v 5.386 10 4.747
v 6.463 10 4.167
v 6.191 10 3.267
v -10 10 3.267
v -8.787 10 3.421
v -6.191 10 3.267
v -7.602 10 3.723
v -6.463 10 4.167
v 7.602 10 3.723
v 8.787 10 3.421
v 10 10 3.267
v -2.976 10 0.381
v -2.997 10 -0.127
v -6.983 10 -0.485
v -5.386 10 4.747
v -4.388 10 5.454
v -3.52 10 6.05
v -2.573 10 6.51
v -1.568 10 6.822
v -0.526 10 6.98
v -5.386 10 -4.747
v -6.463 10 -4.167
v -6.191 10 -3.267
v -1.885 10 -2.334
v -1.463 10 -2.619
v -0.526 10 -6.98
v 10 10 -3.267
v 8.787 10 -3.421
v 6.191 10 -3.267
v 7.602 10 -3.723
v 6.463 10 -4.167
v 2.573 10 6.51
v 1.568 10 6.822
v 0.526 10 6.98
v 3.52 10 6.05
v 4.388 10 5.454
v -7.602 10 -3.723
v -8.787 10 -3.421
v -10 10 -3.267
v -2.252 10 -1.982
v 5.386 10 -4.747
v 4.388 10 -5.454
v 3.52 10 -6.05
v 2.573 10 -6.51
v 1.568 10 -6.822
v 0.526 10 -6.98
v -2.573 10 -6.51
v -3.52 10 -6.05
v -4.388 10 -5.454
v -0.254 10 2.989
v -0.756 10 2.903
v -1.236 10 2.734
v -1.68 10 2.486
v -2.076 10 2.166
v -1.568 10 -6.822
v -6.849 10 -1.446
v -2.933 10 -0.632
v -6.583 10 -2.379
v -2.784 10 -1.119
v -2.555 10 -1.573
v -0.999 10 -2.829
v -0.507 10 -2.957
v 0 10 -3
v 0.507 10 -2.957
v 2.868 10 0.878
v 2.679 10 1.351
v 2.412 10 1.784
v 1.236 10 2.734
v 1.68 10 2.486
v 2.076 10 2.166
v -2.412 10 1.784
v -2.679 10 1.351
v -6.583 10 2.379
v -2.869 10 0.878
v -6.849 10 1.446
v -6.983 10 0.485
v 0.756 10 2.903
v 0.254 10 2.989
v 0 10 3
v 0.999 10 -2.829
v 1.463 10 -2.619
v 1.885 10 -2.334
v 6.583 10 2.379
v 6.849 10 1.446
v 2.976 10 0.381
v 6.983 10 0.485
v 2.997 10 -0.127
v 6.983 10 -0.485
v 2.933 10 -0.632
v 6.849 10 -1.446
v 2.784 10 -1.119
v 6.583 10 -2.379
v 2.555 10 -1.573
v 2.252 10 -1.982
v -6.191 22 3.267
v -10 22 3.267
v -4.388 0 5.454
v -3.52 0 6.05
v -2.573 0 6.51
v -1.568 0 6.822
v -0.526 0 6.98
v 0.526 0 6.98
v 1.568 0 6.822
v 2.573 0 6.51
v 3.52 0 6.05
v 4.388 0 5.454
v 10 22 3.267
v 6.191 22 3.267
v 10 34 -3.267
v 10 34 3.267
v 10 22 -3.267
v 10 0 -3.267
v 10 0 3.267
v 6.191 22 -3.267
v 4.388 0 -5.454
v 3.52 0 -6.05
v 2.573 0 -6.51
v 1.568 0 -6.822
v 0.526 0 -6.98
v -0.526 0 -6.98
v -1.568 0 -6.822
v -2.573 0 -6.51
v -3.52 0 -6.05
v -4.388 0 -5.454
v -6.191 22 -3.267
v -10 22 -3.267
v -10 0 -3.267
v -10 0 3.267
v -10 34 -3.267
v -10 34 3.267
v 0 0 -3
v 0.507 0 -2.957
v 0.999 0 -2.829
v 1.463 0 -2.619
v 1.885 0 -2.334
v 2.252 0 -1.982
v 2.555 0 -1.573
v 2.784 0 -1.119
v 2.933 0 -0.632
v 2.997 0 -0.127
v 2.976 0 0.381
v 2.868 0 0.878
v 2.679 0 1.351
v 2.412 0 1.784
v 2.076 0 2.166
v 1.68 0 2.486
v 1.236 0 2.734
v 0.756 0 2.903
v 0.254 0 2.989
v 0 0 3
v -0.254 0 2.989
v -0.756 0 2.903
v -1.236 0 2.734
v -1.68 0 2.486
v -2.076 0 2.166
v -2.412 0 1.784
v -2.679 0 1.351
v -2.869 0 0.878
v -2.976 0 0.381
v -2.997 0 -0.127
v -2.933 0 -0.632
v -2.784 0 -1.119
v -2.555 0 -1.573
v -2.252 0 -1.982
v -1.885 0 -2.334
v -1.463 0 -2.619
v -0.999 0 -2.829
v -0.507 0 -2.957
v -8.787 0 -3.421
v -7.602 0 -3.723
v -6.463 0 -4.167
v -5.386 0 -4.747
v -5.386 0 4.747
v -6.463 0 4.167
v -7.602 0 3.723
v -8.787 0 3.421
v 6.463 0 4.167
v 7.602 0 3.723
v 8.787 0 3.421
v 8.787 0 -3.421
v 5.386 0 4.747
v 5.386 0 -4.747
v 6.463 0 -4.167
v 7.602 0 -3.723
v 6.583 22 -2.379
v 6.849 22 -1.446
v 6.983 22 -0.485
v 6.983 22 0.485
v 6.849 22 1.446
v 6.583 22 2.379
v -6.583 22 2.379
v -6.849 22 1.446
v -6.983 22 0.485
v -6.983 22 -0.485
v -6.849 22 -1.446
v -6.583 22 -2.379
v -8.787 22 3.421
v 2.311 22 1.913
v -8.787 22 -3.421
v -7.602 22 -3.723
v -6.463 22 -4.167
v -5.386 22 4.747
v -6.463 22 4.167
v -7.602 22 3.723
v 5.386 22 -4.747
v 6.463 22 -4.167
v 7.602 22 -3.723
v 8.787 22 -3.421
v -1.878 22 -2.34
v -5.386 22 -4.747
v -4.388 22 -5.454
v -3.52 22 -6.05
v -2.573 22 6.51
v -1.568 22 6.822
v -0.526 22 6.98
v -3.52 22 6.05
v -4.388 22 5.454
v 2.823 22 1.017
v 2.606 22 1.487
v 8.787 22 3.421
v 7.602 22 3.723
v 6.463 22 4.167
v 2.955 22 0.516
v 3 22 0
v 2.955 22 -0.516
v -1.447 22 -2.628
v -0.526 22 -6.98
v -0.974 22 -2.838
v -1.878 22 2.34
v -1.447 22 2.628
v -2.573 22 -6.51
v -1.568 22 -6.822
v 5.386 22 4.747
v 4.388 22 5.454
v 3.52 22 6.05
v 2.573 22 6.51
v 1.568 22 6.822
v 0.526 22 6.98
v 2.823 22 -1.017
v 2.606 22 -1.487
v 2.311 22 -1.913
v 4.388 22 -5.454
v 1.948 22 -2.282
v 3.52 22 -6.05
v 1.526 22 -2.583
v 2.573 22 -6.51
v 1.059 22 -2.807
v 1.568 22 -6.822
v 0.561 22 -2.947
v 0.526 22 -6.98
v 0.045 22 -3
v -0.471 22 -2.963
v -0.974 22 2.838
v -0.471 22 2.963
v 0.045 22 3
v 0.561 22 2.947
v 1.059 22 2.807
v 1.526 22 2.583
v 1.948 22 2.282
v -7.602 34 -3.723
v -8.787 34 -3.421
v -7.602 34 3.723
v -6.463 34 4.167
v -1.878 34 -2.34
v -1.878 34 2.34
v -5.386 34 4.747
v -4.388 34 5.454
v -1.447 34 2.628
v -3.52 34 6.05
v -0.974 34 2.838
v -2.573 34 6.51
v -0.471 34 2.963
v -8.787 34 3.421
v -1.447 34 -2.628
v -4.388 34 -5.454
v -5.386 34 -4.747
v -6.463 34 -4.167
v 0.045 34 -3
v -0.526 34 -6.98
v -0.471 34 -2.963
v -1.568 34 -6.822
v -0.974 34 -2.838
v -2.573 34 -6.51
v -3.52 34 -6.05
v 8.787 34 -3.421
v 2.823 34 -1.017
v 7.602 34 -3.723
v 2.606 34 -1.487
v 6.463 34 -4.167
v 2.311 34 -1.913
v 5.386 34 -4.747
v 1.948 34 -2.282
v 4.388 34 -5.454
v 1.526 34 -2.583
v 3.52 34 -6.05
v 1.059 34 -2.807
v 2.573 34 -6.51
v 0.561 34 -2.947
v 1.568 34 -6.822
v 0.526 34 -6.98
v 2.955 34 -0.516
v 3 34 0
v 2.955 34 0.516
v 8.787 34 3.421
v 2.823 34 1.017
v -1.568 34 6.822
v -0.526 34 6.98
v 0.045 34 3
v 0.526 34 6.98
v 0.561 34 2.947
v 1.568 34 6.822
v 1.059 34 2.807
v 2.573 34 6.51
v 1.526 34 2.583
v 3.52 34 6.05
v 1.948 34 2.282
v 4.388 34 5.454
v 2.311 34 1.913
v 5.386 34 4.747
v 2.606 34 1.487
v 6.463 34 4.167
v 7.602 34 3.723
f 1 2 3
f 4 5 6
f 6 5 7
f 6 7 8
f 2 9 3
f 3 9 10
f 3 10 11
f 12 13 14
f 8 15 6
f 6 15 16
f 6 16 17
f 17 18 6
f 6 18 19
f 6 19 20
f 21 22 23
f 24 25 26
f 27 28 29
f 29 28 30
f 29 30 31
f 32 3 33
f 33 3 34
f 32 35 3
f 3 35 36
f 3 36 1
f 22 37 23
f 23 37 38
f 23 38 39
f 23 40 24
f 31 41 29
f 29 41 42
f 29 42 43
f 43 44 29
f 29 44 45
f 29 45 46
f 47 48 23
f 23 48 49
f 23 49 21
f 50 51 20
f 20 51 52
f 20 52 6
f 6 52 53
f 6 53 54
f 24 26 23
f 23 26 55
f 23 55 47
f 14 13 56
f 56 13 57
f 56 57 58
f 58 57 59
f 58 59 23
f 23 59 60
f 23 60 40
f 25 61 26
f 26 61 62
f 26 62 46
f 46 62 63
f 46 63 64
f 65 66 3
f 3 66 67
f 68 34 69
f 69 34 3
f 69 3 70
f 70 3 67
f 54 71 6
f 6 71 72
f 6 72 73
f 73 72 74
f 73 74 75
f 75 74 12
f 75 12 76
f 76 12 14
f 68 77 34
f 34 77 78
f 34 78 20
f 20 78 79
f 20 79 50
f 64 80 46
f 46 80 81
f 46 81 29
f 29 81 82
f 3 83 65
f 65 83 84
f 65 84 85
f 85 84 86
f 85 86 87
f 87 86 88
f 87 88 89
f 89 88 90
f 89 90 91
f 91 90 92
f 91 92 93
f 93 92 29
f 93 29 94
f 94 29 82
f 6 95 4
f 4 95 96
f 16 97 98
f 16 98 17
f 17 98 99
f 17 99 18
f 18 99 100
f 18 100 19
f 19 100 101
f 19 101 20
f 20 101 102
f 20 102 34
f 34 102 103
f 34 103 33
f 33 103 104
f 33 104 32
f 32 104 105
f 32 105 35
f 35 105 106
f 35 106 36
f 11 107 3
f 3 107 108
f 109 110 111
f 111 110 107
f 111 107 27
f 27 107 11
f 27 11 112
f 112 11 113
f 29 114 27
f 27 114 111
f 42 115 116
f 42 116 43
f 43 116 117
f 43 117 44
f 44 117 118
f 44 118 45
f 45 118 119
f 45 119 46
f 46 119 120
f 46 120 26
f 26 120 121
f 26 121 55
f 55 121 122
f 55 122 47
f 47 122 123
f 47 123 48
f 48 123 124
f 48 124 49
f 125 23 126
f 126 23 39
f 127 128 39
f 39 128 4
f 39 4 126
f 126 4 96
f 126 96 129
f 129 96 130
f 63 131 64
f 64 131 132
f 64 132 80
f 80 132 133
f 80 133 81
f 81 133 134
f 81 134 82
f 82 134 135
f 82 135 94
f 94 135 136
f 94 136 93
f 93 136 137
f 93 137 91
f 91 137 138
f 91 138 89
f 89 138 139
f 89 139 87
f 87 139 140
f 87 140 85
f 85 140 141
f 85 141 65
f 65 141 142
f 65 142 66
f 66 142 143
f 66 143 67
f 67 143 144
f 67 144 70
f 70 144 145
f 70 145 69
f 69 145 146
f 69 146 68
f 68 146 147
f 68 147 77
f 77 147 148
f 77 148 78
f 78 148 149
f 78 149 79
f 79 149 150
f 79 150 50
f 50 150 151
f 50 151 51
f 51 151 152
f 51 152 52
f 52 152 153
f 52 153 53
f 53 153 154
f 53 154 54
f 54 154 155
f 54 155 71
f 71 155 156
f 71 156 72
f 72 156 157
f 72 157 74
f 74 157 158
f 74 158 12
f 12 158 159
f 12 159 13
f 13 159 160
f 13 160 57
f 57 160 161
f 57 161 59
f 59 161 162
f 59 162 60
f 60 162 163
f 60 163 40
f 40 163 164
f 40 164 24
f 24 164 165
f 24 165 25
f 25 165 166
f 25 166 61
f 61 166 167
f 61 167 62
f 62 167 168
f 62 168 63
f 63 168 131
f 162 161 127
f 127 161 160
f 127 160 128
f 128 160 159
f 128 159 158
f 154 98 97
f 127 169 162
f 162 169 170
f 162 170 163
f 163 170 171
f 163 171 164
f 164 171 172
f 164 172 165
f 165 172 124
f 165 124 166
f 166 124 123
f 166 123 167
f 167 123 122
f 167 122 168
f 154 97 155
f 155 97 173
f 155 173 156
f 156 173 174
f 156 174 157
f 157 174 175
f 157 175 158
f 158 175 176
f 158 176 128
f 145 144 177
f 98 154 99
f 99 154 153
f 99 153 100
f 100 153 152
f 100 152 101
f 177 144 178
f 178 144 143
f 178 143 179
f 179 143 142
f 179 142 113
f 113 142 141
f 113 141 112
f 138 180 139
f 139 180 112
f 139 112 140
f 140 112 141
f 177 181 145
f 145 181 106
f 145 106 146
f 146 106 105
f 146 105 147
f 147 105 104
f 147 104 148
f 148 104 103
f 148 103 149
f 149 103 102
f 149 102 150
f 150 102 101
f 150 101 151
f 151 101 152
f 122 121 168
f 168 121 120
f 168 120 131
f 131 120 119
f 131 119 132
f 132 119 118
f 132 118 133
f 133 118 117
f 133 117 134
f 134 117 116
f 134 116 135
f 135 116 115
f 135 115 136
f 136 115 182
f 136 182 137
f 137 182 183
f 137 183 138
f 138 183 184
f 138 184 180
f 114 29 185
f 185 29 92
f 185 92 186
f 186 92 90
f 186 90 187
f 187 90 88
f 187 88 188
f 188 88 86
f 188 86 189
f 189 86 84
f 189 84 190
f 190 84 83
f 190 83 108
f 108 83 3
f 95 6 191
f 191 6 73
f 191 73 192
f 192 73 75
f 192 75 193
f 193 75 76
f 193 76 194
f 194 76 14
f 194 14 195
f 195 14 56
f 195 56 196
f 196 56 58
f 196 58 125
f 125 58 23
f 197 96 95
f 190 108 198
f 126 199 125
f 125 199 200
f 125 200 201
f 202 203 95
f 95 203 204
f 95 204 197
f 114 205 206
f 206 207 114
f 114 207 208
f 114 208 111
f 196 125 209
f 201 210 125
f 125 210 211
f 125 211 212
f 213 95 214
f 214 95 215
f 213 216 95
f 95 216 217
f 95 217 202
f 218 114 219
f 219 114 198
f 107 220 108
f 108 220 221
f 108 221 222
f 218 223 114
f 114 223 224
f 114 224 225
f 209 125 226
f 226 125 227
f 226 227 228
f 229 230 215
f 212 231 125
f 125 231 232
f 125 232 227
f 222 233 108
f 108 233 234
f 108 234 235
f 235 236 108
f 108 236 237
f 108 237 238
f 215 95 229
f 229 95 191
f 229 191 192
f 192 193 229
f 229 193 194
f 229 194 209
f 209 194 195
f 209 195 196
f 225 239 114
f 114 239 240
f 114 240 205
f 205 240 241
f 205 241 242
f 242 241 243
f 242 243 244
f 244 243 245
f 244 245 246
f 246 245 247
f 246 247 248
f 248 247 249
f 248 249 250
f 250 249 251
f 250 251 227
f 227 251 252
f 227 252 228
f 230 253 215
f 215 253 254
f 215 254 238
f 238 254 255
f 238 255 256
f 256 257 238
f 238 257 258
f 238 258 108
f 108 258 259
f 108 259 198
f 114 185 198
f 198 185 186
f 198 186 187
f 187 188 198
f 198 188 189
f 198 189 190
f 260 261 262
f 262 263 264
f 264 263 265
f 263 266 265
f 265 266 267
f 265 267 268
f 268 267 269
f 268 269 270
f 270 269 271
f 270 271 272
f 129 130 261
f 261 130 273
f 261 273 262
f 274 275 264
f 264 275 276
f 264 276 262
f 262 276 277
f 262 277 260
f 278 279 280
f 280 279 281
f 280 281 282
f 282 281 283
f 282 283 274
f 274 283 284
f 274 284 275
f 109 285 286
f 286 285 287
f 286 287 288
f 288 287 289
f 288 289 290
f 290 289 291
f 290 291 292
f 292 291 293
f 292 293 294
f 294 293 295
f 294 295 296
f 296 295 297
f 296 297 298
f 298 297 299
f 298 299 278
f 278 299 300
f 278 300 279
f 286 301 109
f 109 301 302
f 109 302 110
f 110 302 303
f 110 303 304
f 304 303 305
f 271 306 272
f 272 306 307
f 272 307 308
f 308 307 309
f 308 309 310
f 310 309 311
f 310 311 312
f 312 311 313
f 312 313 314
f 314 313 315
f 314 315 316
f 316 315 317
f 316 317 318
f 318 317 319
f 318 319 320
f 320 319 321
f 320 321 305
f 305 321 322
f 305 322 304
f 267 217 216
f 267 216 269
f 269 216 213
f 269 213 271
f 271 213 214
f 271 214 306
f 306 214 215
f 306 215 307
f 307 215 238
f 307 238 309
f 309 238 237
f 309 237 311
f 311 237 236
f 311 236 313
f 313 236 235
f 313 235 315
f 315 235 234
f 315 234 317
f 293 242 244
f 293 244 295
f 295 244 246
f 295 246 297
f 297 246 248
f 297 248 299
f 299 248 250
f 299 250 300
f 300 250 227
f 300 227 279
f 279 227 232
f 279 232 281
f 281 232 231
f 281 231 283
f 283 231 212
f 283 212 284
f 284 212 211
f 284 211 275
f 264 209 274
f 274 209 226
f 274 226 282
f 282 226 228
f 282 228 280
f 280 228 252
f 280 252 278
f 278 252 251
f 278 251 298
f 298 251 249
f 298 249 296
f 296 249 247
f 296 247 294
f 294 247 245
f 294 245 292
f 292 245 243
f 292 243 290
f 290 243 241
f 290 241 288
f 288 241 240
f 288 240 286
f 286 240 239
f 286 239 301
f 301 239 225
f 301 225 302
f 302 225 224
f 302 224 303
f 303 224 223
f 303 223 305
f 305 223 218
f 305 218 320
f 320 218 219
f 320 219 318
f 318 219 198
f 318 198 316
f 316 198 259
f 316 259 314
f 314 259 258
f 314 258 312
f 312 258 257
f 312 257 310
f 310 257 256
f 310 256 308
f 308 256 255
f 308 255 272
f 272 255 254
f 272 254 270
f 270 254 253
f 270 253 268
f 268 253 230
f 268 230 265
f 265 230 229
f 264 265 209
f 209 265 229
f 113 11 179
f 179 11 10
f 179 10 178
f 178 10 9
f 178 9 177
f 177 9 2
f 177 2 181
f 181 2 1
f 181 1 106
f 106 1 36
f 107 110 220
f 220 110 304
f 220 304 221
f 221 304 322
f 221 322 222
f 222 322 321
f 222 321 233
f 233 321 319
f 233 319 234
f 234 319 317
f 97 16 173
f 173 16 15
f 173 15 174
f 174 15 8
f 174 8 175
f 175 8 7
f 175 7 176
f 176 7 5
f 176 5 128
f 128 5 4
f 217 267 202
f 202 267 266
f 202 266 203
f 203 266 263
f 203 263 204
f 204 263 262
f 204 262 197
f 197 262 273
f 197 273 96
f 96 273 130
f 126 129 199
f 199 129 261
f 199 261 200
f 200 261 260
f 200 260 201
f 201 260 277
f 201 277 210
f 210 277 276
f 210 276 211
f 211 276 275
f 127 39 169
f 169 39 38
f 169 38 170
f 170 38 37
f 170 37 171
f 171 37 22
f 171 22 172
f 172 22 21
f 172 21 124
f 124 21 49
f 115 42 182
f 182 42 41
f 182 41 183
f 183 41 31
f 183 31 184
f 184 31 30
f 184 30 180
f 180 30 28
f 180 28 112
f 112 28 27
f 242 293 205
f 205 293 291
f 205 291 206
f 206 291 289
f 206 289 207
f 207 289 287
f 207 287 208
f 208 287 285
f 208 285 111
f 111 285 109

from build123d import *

# Parameters (mm, degrees)
BOSS_EXTRUDE1_DEPTH = 10
BOSS_EXTRUDE2_START = 10
BOSS_EXTRUDE2_DEPTH = 12
BOSS_EXTRUDE3_START = 22
BOSS_EXTRUDE3_DEPTH = 12
FILLET1_R           = 10


with BuildPart() as part:
    # Sketch1 → Boss-Extrude1 (new body)
    # profile 1 of 5: a face of its own
    with BuildSketch(Plane(origin=(0, 0, 0), x_dir=(1, 0, 0), z_dir=(0, 1, 0))):
        with BuildLine():
            Line((-10, 3.266604118), (-10, -3.266604118))
            Line((-10, -3.266604118), (-6.191065945, -3.266604118))
            ThreePointArc((-6.191065945, -3.266604118), (-7, 0), (-6.191065945, 3.266604118))
            Line((-6.191065945, 3.266604118), (-10, 3.266604118))
        make_face()
    # profile 2 of 5: a face of its own
    with BuildSketch(Plane(origin=(0, 0, 0), x_dir=(1, 0, 0), z_dir=(0, 1, 0))):
        with BuildLine():
            ThreePointArc((6.191065945, 3.266604118), (0, 7), (-6.191065945, 3.266604118))
            Line((-6.191065945, 3.266604118), (6.191065945, 3.266604118))
        make_face()
    # profile 3 of 5: a face of its own
    with BuildSketch(Plane(origin=(0, 0, 0), x_dir=(1, 0, 0), z_dir=(0, 1, 0))):
        with BuildLine():
            ThreePointArc((-6.191065945, 3.266604118), (-7, 0), (-6.191065945, -3.266604118))
            Line((-6.191065945, -3.266604118), (6.191065945, -3.266604118))
            ThreePointArc((6.191065945, -3.266604118), (6.794757597, -1.68263757), (7, 0))
            ThreePointArc((7, 0), (6.794757597, 1.68263757), (6.191065945, 3.266604118))
            Line((6.191065945, 3.266604118), (-6.191065945, 3.266604118))
        make_face()
        with BuildLine():
            ThreePointArc((-1.877606485, -2.339785009), (-3, 0), (-1.877606485, 2.339785009))
            ThreePointArc((-1.877606485, 2.339785009), (1.297532378, 2.704886269), (3, 0))
            ThreePointArc((3, 0), (1.297532378, -2.704886269), (-1.877606485, -2.339785009))
        make_face(mode=Mode.SUBTRACT)
    # profile 4 of 5: a face of its own
    with BuildSketch(Plane(origin=(0, 0, 0), x_dir=(1, 0, 0), z_dir=(0, 1, 0))):
        with BuildLine():
            Line((6.191065945, -3.266604118), (-6.191065945, -3.266604118))
            ThreePointArc((-6.191065945, -3.266604118), (0, -7), (6.191065945, -3.266604118))
        make_face()
    # profile 5 of 5: a face of its own
    with BuildSketch(Plane(origin=(0, 0, 0), x_dir=(1, 0, 0), z_dir=(0, 1, 0))):
        with BuildLine():
            ThreePointArc((7, 0), (6.794757597, -1.68263757), (6.191065945, -3.266604118))
            Line((6.191065945, -3.266604118), (10, -3.266604118))
            Line((10, -3.266604118), (10, 3.266604118))
            Line((10, 3.266604118), (6.191065945, 3.266604118))
            ThreePointArc((6.191065945, 3.266604118), (6.794757597, 1.68263757), (7, 0))
        make_face()
    extrude(amount=BOSS_EXTRUDE1_DEPTH)

    # Sketch1<3> → Boss-Extrude2 (add)
    with BuildSketch(Plane(origin=(0, 0, 0), x_dir=(1, 0, 0), z_dir=(0, 1, 0)).offset(BOSS_EXTRUDE2_START)):
        with BuildLine():
            ThreePointArc((7, 0), (6.794757597, -1.68263757), (6.191065945, -3.266604118))
            Line((6.191065945, -3.266604118), (10, -3.266604118))
            Line((10, -3.266604118), (10, 3.266604118))
            Line((10, 3.266604118), (6.191065945, 3.266604118))
            ThreePointArc((6.191065945, 3.266604118), (6.794757597, 1.68263757), (7, 0))
        make_face()
        with BuildLine():
            Line((-10, 3.266604118), (-10, -3.266604118))
            Line((-10, -3.266604118), (-6.191065945, -3.266604118))
            ThreePointArc((-6.191065945, -3.266604118), (-7, 0), (-6.191065945, 3.266604118))
            Line((-6.191065945, 3.266604118), (-10, 3.266604118))
        make_face()
    extrude(amount=BOSS_EXTRUDE2_DEPTH)

    # Sketch1<5> → Boss-Extrude3 (add)
    with BuildSketch(Plane(origin=(0, 0, 0), x_dir=(1, 0, 0), z_dir=(0, 1, 0)).offset(BOSS_EXTRUDE3_START)):
        with BuildLine():
            Line((-10, 3.266604118), (-10, -3.266604118))
            Line((-10, -3.266604118), (-6.191065945, -3.266604118))
            ThreePointArc((-6.191065945, -3.266604118), (0, -7), (6.191065945, -3.266604118))
            Line((6.191065945, -3.266604118), (10, -3.266604118))
            Line((10, -3.266604118), (10, 3.266604118))
            Line((10, 3.266604118), (6.191065945, 3.266604118))
            ThreePointArc((6.191065945, 3.266604118), (0, 7), (-6.191065945, 3.266604118))
            Line((-6.191065945, 3.266604118), (-10, 3.266604118))
        make_face()
        with BuildLine():
            Line((-1.877606485, -2.339785009), (-1.877606485, 2.339785009))
            ThreePointArc((-1.877606485, 2.339785009), (3, 0), (-1.877606485, -2.339785009))
        make_face(mode=Mode.SUBTRACT)
    extrude(amount=BOSS_EXTRUDE3_DEPTH)

    # Fillet1
    # the kernel refuses this fillet: 10 mm, written as the material it adds along each edge
    with BuildSketch(Plane(origin=(6.191065945, 0, 3.266604118), x_dir=(-0.6360609802051742, 0, 0.7716387946833887), z_dir=(0, 1, 0))) as fillet1_piece_1:
        with BuildLine():
            CenterArc((4.859166888, 9.792894401), FILLET1_R, 223.265287812, 35.053552735)
            Line((-2.422714329, 2.939121283), (0, 0))
            ThreePointArc((0, 0), (1.417257009, 0.144973919), (2.834514018, 0))
        make_face()
    extrude(amount=10)
    with BuildSketch(Plane(origin=(-6.191065945, 0, 3.266604118), x_dir=(-1, 0, 0), z_dir=(0, 1, 0)), Plane(origin=(6.191065945, 0, -3.266604118), x_dir=(1, 0, 0), z_dir=(0, 1, 0))) as fillet1_piece_2:
        with BuildLine():
            CenterArc((4.465850779, 9.978399692), FILLET1_R, 231.17987933, 35.053552735)
            ThreePointArc((-1.802923765, 2.18722098), (-0.789594382, 1.185822743), (0, 0))
            Line((0, 0), (3.808934055, 0))
        make_face()
    extrude(amount=10)
    with BuildSketch(Plane(origin=(6.191065945, 22, 3.266604118), x_dir=(1, 0, 0), z_dir=(0, 1, 0))) as fillet1_piece_3:
        with BuildLine():
            CenterArc((4.465850779, -9.978399692), FILLET1_R, 93.766567935, 35.053552735)
            ThreePointArc((-1.802923765, -2.18722098), (-0.789594382, -1.185822743), (0, 0))
            Line((0, 0), (3.808934055, 0))
        make_face()
    extrude(amount=12)
    with BuildSketch(Plane(origin=(-6.191065945, 22, 3.266604118), x_dir=(-1, 0, 0), z_dir=(0, 1, 0))) as fillet1_piece_4:
        with BuildLine():
            CenterArc((4.465850779, 9.978399692), FILLET1_R, 231.17987933, 35.053552735)
            ThreePointArc((-1.802923765, 2.18722098), (-0.789594382, 1.185822743), (0, 0))
            Line((0, 0), (3.808934055, 0))
        make_face()
    extrude(amount=12)
    with BuildSketch(Plane(origin=(-6.191065945, 22, -3.266604118), x_dir=(0.6360609802051819, 0, -0.7716387946833824), z_dir=(0, 1, 0))) as fillet1_piece_5:
        with BuildLine():
            CenterArc((4.859166888, 9.792894401), FILLET1_R, 223.265287812, 35.053552735)
            Line((-2.422714329, 2.939121283), (0, 0))
            ThreePointArc((0, 0), (1.417257009, 0.144973919), (2.834514018, 0))
        make_face()
    extrude(amount=12)
    with BuildSketch(Plane(origin=(6.191065945, 22, -3.266604118), x_dir=(-0.6360609802051733, 0, -0.7716387946833895), z_dir=(0, 1, 0))) as fillet1_piece_6:
        with BuildLine():
            CenterArc((4.859166888, -9.792894401), FILLET1_R, 101.681159453, 35.053552735)
            Line((-2.422714329, -2.939121283), (0, 0))
            ThreePointArc((0, 0), (1.417257009, -0.144973919), (2.834514018, 0))
        make_face()
    extrude(amount=12)
    with BuildSketch(Plane(origin=(-6.191065945, 0, -3.266604118), x_dir=(-1, 0, 0), z_dir=(0, 1, 0))) as fillet1_piece_7:
        with BuildLine():
            CenterArc((4.465850779, -9.978399692), FILLET1_R, 93.766567935, 35.053552735)
            ThreePointArc((-1.802923765, -2.18722098), (-0.789594382, -1.185822743), (0, 0))
            Line((0, 0), (3.808934055, 0))
        make_face()
    extrude(amount=10)


solid = part.part
